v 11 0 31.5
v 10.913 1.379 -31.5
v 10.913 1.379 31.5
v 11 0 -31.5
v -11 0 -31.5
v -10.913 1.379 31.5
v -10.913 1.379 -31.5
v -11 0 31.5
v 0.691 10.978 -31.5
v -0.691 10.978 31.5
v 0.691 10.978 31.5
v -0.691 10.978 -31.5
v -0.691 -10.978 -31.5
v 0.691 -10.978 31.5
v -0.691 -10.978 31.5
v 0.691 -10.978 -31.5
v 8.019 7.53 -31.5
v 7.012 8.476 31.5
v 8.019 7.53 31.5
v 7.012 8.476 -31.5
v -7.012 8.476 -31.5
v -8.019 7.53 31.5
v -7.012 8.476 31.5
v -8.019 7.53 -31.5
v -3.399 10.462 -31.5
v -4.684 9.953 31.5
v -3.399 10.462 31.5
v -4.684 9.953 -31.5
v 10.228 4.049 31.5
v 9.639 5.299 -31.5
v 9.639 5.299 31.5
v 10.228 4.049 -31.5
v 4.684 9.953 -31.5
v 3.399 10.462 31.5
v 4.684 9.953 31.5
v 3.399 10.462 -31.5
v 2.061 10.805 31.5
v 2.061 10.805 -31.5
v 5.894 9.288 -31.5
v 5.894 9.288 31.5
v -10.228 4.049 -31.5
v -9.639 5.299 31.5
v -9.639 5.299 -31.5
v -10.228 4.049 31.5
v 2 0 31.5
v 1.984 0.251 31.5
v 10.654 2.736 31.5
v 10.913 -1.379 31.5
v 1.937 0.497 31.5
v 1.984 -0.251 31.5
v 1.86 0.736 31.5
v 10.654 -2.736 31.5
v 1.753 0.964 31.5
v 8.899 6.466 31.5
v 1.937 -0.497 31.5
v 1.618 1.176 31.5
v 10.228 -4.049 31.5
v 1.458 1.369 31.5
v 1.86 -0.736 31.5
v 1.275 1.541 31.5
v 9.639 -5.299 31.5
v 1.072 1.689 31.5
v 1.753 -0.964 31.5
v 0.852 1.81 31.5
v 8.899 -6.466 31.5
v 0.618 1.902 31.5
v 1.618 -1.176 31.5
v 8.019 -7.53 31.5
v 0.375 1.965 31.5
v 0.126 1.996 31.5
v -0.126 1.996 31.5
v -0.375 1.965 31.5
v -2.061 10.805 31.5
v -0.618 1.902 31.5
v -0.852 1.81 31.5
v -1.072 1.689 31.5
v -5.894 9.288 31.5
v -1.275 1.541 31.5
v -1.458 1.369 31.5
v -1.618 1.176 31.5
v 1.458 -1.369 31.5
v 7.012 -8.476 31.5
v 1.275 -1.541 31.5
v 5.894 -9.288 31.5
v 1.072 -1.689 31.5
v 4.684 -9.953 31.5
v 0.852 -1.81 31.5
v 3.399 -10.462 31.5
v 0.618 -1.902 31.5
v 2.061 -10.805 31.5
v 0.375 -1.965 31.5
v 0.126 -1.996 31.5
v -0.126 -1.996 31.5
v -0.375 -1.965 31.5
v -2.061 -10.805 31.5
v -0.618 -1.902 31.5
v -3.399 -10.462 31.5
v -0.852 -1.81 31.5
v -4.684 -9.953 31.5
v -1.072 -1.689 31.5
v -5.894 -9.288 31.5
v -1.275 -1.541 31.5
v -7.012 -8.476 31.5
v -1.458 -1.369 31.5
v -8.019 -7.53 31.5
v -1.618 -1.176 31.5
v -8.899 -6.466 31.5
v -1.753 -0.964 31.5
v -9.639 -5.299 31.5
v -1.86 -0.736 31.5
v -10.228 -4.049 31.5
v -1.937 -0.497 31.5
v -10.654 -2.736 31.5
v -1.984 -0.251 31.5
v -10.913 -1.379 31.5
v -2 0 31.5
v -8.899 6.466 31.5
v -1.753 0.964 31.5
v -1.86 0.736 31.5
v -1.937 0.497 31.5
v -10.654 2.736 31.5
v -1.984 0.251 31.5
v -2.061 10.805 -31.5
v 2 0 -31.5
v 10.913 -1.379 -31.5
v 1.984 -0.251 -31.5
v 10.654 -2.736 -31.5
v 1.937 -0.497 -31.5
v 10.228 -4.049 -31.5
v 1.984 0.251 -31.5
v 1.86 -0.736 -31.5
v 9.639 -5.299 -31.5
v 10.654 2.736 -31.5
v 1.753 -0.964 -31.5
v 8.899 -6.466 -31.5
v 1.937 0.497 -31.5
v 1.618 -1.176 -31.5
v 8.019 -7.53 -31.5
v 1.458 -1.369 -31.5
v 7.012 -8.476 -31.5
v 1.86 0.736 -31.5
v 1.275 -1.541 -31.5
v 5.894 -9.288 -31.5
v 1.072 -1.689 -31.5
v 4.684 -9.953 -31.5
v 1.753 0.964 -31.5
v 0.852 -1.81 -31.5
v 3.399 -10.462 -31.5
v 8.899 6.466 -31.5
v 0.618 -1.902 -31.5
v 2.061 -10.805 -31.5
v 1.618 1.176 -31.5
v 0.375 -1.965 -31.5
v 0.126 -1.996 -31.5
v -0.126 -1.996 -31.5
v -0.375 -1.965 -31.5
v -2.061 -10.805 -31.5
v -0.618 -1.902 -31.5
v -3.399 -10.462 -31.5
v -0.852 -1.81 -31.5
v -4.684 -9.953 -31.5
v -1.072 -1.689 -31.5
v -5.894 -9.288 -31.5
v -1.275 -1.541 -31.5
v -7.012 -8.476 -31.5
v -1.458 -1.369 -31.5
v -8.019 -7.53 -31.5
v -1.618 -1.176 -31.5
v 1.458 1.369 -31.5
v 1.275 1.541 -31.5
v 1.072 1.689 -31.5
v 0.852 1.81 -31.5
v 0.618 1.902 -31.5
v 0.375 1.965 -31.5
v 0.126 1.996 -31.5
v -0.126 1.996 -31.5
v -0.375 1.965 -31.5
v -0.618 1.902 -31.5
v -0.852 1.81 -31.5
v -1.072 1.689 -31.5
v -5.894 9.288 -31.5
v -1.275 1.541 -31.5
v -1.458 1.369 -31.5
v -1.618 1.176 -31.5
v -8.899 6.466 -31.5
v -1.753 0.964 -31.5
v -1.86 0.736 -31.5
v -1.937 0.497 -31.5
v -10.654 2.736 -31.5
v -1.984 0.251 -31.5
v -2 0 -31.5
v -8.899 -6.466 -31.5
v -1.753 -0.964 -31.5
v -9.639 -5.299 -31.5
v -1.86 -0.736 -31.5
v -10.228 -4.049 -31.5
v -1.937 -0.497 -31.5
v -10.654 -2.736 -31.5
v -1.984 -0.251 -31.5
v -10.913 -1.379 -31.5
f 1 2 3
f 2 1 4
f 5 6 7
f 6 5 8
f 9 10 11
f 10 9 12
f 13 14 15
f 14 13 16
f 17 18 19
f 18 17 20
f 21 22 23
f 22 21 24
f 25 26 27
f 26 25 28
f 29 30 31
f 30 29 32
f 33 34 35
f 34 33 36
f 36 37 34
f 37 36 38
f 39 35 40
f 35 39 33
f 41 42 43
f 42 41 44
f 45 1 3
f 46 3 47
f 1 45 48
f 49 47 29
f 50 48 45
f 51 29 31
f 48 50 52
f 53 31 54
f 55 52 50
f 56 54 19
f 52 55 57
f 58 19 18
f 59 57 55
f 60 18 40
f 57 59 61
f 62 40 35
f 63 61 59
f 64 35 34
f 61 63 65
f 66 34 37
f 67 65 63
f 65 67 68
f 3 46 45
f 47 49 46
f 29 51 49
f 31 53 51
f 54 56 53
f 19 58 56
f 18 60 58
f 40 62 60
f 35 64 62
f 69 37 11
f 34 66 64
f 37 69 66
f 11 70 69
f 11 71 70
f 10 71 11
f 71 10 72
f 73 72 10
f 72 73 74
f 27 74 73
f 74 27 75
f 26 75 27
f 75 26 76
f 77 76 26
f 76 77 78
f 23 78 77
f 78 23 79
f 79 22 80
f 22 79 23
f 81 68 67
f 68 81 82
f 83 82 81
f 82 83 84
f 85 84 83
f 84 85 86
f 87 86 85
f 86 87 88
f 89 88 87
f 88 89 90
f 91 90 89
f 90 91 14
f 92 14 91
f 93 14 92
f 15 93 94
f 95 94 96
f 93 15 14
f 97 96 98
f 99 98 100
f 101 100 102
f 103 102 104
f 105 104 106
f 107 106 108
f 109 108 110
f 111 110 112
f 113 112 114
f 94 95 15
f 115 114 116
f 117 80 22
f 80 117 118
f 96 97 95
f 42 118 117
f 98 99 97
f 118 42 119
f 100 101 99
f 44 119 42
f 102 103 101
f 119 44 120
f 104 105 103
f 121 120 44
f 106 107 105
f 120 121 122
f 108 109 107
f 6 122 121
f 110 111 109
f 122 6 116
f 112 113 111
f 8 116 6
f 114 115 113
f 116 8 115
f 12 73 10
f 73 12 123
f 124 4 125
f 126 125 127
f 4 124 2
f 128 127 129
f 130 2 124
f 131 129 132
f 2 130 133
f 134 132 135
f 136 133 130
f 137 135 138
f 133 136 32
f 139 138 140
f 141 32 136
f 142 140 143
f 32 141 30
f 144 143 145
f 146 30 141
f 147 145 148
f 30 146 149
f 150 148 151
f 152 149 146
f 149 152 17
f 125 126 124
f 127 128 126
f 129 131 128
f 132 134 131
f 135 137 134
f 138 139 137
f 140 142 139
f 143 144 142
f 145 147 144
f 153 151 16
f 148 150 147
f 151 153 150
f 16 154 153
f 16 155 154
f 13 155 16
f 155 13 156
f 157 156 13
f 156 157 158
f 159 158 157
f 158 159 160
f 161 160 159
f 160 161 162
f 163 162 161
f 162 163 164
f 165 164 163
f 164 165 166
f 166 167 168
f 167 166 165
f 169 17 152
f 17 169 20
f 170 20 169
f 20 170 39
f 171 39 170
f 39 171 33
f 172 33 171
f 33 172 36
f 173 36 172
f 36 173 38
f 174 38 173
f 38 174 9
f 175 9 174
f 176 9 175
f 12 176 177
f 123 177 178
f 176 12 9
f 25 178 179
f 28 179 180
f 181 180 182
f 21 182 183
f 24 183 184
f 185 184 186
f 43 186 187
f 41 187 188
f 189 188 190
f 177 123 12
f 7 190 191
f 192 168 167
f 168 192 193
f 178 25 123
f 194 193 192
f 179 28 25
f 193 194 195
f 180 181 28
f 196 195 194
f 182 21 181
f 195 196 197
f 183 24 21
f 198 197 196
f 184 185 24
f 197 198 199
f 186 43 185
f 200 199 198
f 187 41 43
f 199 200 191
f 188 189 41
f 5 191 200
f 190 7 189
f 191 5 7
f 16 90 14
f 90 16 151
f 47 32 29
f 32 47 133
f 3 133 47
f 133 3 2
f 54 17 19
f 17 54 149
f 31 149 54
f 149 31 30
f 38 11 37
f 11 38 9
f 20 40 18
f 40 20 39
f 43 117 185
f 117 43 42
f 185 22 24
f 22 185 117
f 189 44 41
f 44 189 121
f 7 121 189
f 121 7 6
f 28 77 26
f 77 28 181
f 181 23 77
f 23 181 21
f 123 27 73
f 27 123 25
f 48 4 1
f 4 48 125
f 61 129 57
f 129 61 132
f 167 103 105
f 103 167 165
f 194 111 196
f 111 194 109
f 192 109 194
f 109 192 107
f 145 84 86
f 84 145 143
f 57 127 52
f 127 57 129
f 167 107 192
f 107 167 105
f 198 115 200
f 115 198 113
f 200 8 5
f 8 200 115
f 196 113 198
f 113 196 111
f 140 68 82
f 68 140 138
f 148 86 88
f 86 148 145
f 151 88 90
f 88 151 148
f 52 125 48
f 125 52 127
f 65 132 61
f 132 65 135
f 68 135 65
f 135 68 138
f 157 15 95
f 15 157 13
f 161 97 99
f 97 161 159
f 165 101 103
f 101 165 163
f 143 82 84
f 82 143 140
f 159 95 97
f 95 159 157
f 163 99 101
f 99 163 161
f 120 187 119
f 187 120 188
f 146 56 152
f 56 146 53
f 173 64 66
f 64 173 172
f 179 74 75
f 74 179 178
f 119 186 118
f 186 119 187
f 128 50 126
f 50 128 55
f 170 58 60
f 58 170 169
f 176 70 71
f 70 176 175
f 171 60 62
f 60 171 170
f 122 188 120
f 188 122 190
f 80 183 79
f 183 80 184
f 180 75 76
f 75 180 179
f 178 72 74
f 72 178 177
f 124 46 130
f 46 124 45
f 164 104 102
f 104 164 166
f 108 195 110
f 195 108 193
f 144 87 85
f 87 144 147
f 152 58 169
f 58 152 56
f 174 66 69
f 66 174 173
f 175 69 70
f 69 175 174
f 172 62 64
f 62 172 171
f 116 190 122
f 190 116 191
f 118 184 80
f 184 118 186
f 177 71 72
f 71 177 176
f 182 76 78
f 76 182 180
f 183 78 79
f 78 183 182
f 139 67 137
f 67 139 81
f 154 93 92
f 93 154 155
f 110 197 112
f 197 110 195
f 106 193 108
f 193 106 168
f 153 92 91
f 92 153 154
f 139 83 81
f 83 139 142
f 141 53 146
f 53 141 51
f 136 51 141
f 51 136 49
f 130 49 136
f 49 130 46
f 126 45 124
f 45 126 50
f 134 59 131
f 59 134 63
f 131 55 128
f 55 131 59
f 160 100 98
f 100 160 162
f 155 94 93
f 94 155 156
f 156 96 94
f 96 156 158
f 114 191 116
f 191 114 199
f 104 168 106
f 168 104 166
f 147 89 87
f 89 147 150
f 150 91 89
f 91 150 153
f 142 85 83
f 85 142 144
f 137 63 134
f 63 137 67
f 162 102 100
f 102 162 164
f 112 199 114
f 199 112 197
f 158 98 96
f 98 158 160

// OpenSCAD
$fn = 50;


difference() {
	union() {
		translate(v = [0, 0, -31.5000000000]) {
			cylinder(h = 63, r = 11.0000000000);
		}
	}
	union() {
		translate(v = [0, 0, -100.0000000000]) {
			cylinder(h = 200, r = 2);
		}
	}
}
